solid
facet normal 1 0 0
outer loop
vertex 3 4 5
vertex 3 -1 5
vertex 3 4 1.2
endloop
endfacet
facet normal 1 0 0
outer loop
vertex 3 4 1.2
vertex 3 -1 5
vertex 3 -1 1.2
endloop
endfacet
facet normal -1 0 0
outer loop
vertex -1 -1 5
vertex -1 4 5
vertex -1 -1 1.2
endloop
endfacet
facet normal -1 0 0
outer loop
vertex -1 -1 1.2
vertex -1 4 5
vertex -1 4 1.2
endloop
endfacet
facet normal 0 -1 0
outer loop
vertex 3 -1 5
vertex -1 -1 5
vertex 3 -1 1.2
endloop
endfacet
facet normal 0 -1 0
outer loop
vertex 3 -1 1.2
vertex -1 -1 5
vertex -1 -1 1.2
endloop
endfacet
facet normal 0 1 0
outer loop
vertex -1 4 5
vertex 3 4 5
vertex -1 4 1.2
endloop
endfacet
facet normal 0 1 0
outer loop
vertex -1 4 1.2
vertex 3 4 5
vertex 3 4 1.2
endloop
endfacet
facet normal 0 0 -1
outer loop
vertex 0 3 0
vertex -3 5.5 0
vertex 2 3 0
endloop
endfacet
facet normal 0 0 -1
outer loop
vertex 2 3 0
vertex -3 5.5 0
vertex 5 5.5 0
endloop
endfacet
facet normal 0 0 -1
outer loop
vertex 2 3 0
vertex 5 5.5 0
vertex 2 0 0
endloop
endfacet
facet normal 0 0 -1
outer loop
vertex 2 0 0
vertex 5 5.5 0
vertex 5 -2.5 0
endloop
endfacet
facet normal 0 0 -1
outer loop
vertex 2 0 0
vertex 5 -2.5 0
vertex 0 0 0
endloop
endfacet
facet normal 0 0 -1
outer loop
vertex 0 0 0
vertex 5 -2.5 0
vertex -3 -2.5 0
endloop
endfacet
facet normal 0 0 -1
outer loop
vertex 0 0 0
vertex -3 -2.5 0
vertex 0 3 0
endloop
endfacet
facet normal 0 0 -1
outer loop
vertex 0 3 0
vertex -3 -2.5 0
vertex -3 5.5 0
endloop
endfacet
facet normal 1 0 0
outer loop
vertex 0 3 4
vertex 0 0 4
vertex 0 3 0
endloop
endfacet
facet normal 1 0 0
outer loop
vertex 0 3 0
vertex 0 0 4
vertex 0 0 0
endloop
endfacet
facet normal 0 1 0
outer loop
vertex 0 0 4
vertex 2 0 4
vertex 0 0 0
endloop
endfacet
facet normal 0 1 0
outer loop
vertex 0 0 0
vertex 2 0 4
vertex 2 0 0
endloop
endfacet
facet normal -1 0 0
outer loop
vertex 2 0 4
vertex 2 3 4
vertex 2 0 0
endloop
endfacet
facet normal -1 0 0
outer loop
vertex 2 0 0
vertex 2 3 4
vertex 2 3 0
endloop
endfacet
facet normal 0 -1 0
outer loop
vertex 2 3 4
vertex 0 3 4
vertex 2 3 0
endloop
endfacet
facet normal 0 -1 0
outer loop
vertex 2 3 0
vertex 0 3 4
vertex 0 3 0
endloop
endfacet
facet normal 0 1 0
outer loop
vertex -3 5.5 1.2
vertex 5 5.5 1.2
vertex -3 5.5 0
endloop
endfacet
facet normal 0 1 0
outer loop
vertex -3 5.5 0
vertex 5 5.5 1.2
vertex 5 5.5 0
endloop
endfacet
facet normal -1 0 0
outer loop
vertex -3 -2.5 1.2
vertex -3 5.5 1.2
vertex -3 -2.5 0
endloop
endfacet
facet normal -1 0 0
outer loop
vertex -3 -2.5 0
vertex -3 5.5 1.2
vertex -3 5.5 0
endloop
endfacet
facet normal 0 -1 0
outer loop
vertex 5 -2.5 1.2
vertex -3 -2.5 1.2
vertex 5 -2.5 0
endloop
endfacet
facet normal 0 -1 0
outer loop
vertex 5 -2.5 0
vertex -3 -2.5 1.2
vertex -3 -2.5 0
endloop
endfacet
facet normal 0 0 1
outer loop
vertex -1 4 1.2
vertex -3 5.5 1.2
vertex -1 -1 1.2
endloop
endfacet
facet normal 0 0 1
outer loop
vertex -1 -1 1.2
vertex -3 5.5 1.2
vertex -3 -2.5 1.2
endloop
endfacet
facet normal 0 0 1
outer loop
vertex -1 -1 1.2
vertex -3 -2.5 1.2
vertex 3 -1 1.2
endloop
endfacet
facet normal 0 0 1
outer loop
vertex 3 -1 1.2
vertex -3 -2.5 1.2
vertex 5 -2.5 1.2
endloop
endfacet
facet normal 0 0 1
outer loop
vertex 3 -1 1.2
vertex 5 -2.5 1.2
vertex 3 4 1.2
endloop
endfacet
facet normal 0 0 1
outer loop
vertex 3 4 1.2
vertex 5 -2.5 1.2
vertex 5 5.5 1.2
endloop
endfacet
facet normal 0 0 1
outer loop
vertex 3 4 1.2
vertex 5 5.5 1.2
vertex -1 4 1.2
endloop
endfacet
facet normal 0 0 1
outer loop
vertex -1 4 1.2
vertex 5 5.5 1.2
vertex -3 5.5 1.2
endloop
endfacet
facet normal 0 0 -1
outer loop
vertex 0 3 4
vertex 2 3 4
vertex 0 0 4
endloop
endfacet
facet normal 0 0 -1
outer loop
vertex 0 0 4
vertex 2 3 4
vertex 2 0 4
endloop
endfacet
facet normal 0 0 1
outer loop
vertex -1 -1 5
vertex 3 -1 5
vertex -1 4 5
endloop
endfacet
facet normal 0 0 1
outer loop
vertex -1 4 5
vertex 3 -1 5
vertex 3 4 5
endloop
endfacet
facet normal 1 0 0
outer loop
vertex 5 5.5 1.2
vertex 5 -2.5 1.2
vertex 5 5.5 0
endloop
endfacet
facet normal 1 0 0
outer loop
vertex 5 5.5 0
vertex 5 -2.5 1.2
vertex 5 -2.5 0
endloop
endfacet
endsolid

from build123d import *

# Parameters (mm, degrees)
SKETCH_1_W      = 4
SKETCH_1_H      = 5
SKETCH_1_W_2    = 2
SKETCH_1_H_2    = 3
EXTRUDE_1_DEPTH = 4
EXTRUDE_2_DEPTH = 1.2
SKETCH_3_W      = 4
SKETCH_3_H      = 5
EXTRUDE_3_DEPTH = 1
SKETCH_4_W      = 2
SKETCH_4_H      = 8
EXTRUDE_4_DEPTH = 1.2


with BuildPart() as part:
    # 草图1 → 凸台-拉伸1 (new body)
    with BuildSketch(Plane.XY):
        with Locations((1, 1.5)):
            Rectangle(SKETCH_1_W, SKETCH_1_H)
        with Locations((1, 1.5)):
            Rectangle(SKETCH_1_W_2, SKETCH_1_H_2, mode=Mode.SUBTRACT)
    extrude(amount=EXTRUDE_1_DEPTH)

    # 草图2 → 凸台-拉伸2 (add)
    with BuildSketch(Plane(origin=(0, 0, 0), x_dir=(-1, 0, 0), z_dir=(0, 0, -1))):
        Polygon((-3, 4), (1, 4), (1, -1), (-3, -1), (-3, -2.5), (3, -2.5), (3, 5.5), (-3, 5.5), align=None)
    extrude(amount=-EXTRUDE_2_DEPTH)

    # 草图3 → 凸台-拉伸3 (add)
    with BuildSketch(Plane.XY.offset(4)):
        with Locations((1, 1.5)):
            Rectangle(SKETCH_3_W, SKETCH_3_H)
    extrude(amount=EXTRUDE_3_DEPTH)

    # 草图4 → 凸台-拉伸4 (add)
    with BuildSketch(Plane.XY.offset(1.2)):
        with Locations((4, 1.5)):
            Rectangle(SKETCH_4_W, SKETCH_4_H)
    extrude(amount=-EXTRUDE_4_DEPTH)


solid = part.part
